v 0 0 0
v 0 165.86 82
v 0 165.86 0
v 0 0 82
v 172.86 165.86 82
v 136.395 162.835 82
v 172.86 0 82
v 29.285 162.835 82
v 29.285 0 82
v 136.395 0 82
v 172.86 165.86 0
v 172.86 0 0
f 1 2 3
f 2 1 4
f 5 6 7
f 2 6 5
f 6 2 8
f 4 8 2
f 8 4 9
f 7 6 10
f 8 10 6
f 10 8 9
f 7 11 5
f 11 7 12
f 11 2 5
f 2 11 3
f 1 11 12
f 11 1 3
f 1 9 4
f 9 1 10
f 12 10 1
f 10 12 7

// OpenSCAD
// Opentrons Fixed Trash
// loadName: opentrons_1_trash_1100ml_fixed
// Auto-generated by labware_to_stl.py from Opentrons V2 labware definition

$fn = 64;

difference() {
    // ── Labware body ──────────────────────────────────────────────
    cube([172.8600, 165.8600, 82.0000]);

    // ── Well cutouts ──────────────────────────────────────────────
    // Well A1
    translate([29.2850, -2.8350, 82.0000])
        cube([107.1100, 165.6700, 1.0000]);
}
